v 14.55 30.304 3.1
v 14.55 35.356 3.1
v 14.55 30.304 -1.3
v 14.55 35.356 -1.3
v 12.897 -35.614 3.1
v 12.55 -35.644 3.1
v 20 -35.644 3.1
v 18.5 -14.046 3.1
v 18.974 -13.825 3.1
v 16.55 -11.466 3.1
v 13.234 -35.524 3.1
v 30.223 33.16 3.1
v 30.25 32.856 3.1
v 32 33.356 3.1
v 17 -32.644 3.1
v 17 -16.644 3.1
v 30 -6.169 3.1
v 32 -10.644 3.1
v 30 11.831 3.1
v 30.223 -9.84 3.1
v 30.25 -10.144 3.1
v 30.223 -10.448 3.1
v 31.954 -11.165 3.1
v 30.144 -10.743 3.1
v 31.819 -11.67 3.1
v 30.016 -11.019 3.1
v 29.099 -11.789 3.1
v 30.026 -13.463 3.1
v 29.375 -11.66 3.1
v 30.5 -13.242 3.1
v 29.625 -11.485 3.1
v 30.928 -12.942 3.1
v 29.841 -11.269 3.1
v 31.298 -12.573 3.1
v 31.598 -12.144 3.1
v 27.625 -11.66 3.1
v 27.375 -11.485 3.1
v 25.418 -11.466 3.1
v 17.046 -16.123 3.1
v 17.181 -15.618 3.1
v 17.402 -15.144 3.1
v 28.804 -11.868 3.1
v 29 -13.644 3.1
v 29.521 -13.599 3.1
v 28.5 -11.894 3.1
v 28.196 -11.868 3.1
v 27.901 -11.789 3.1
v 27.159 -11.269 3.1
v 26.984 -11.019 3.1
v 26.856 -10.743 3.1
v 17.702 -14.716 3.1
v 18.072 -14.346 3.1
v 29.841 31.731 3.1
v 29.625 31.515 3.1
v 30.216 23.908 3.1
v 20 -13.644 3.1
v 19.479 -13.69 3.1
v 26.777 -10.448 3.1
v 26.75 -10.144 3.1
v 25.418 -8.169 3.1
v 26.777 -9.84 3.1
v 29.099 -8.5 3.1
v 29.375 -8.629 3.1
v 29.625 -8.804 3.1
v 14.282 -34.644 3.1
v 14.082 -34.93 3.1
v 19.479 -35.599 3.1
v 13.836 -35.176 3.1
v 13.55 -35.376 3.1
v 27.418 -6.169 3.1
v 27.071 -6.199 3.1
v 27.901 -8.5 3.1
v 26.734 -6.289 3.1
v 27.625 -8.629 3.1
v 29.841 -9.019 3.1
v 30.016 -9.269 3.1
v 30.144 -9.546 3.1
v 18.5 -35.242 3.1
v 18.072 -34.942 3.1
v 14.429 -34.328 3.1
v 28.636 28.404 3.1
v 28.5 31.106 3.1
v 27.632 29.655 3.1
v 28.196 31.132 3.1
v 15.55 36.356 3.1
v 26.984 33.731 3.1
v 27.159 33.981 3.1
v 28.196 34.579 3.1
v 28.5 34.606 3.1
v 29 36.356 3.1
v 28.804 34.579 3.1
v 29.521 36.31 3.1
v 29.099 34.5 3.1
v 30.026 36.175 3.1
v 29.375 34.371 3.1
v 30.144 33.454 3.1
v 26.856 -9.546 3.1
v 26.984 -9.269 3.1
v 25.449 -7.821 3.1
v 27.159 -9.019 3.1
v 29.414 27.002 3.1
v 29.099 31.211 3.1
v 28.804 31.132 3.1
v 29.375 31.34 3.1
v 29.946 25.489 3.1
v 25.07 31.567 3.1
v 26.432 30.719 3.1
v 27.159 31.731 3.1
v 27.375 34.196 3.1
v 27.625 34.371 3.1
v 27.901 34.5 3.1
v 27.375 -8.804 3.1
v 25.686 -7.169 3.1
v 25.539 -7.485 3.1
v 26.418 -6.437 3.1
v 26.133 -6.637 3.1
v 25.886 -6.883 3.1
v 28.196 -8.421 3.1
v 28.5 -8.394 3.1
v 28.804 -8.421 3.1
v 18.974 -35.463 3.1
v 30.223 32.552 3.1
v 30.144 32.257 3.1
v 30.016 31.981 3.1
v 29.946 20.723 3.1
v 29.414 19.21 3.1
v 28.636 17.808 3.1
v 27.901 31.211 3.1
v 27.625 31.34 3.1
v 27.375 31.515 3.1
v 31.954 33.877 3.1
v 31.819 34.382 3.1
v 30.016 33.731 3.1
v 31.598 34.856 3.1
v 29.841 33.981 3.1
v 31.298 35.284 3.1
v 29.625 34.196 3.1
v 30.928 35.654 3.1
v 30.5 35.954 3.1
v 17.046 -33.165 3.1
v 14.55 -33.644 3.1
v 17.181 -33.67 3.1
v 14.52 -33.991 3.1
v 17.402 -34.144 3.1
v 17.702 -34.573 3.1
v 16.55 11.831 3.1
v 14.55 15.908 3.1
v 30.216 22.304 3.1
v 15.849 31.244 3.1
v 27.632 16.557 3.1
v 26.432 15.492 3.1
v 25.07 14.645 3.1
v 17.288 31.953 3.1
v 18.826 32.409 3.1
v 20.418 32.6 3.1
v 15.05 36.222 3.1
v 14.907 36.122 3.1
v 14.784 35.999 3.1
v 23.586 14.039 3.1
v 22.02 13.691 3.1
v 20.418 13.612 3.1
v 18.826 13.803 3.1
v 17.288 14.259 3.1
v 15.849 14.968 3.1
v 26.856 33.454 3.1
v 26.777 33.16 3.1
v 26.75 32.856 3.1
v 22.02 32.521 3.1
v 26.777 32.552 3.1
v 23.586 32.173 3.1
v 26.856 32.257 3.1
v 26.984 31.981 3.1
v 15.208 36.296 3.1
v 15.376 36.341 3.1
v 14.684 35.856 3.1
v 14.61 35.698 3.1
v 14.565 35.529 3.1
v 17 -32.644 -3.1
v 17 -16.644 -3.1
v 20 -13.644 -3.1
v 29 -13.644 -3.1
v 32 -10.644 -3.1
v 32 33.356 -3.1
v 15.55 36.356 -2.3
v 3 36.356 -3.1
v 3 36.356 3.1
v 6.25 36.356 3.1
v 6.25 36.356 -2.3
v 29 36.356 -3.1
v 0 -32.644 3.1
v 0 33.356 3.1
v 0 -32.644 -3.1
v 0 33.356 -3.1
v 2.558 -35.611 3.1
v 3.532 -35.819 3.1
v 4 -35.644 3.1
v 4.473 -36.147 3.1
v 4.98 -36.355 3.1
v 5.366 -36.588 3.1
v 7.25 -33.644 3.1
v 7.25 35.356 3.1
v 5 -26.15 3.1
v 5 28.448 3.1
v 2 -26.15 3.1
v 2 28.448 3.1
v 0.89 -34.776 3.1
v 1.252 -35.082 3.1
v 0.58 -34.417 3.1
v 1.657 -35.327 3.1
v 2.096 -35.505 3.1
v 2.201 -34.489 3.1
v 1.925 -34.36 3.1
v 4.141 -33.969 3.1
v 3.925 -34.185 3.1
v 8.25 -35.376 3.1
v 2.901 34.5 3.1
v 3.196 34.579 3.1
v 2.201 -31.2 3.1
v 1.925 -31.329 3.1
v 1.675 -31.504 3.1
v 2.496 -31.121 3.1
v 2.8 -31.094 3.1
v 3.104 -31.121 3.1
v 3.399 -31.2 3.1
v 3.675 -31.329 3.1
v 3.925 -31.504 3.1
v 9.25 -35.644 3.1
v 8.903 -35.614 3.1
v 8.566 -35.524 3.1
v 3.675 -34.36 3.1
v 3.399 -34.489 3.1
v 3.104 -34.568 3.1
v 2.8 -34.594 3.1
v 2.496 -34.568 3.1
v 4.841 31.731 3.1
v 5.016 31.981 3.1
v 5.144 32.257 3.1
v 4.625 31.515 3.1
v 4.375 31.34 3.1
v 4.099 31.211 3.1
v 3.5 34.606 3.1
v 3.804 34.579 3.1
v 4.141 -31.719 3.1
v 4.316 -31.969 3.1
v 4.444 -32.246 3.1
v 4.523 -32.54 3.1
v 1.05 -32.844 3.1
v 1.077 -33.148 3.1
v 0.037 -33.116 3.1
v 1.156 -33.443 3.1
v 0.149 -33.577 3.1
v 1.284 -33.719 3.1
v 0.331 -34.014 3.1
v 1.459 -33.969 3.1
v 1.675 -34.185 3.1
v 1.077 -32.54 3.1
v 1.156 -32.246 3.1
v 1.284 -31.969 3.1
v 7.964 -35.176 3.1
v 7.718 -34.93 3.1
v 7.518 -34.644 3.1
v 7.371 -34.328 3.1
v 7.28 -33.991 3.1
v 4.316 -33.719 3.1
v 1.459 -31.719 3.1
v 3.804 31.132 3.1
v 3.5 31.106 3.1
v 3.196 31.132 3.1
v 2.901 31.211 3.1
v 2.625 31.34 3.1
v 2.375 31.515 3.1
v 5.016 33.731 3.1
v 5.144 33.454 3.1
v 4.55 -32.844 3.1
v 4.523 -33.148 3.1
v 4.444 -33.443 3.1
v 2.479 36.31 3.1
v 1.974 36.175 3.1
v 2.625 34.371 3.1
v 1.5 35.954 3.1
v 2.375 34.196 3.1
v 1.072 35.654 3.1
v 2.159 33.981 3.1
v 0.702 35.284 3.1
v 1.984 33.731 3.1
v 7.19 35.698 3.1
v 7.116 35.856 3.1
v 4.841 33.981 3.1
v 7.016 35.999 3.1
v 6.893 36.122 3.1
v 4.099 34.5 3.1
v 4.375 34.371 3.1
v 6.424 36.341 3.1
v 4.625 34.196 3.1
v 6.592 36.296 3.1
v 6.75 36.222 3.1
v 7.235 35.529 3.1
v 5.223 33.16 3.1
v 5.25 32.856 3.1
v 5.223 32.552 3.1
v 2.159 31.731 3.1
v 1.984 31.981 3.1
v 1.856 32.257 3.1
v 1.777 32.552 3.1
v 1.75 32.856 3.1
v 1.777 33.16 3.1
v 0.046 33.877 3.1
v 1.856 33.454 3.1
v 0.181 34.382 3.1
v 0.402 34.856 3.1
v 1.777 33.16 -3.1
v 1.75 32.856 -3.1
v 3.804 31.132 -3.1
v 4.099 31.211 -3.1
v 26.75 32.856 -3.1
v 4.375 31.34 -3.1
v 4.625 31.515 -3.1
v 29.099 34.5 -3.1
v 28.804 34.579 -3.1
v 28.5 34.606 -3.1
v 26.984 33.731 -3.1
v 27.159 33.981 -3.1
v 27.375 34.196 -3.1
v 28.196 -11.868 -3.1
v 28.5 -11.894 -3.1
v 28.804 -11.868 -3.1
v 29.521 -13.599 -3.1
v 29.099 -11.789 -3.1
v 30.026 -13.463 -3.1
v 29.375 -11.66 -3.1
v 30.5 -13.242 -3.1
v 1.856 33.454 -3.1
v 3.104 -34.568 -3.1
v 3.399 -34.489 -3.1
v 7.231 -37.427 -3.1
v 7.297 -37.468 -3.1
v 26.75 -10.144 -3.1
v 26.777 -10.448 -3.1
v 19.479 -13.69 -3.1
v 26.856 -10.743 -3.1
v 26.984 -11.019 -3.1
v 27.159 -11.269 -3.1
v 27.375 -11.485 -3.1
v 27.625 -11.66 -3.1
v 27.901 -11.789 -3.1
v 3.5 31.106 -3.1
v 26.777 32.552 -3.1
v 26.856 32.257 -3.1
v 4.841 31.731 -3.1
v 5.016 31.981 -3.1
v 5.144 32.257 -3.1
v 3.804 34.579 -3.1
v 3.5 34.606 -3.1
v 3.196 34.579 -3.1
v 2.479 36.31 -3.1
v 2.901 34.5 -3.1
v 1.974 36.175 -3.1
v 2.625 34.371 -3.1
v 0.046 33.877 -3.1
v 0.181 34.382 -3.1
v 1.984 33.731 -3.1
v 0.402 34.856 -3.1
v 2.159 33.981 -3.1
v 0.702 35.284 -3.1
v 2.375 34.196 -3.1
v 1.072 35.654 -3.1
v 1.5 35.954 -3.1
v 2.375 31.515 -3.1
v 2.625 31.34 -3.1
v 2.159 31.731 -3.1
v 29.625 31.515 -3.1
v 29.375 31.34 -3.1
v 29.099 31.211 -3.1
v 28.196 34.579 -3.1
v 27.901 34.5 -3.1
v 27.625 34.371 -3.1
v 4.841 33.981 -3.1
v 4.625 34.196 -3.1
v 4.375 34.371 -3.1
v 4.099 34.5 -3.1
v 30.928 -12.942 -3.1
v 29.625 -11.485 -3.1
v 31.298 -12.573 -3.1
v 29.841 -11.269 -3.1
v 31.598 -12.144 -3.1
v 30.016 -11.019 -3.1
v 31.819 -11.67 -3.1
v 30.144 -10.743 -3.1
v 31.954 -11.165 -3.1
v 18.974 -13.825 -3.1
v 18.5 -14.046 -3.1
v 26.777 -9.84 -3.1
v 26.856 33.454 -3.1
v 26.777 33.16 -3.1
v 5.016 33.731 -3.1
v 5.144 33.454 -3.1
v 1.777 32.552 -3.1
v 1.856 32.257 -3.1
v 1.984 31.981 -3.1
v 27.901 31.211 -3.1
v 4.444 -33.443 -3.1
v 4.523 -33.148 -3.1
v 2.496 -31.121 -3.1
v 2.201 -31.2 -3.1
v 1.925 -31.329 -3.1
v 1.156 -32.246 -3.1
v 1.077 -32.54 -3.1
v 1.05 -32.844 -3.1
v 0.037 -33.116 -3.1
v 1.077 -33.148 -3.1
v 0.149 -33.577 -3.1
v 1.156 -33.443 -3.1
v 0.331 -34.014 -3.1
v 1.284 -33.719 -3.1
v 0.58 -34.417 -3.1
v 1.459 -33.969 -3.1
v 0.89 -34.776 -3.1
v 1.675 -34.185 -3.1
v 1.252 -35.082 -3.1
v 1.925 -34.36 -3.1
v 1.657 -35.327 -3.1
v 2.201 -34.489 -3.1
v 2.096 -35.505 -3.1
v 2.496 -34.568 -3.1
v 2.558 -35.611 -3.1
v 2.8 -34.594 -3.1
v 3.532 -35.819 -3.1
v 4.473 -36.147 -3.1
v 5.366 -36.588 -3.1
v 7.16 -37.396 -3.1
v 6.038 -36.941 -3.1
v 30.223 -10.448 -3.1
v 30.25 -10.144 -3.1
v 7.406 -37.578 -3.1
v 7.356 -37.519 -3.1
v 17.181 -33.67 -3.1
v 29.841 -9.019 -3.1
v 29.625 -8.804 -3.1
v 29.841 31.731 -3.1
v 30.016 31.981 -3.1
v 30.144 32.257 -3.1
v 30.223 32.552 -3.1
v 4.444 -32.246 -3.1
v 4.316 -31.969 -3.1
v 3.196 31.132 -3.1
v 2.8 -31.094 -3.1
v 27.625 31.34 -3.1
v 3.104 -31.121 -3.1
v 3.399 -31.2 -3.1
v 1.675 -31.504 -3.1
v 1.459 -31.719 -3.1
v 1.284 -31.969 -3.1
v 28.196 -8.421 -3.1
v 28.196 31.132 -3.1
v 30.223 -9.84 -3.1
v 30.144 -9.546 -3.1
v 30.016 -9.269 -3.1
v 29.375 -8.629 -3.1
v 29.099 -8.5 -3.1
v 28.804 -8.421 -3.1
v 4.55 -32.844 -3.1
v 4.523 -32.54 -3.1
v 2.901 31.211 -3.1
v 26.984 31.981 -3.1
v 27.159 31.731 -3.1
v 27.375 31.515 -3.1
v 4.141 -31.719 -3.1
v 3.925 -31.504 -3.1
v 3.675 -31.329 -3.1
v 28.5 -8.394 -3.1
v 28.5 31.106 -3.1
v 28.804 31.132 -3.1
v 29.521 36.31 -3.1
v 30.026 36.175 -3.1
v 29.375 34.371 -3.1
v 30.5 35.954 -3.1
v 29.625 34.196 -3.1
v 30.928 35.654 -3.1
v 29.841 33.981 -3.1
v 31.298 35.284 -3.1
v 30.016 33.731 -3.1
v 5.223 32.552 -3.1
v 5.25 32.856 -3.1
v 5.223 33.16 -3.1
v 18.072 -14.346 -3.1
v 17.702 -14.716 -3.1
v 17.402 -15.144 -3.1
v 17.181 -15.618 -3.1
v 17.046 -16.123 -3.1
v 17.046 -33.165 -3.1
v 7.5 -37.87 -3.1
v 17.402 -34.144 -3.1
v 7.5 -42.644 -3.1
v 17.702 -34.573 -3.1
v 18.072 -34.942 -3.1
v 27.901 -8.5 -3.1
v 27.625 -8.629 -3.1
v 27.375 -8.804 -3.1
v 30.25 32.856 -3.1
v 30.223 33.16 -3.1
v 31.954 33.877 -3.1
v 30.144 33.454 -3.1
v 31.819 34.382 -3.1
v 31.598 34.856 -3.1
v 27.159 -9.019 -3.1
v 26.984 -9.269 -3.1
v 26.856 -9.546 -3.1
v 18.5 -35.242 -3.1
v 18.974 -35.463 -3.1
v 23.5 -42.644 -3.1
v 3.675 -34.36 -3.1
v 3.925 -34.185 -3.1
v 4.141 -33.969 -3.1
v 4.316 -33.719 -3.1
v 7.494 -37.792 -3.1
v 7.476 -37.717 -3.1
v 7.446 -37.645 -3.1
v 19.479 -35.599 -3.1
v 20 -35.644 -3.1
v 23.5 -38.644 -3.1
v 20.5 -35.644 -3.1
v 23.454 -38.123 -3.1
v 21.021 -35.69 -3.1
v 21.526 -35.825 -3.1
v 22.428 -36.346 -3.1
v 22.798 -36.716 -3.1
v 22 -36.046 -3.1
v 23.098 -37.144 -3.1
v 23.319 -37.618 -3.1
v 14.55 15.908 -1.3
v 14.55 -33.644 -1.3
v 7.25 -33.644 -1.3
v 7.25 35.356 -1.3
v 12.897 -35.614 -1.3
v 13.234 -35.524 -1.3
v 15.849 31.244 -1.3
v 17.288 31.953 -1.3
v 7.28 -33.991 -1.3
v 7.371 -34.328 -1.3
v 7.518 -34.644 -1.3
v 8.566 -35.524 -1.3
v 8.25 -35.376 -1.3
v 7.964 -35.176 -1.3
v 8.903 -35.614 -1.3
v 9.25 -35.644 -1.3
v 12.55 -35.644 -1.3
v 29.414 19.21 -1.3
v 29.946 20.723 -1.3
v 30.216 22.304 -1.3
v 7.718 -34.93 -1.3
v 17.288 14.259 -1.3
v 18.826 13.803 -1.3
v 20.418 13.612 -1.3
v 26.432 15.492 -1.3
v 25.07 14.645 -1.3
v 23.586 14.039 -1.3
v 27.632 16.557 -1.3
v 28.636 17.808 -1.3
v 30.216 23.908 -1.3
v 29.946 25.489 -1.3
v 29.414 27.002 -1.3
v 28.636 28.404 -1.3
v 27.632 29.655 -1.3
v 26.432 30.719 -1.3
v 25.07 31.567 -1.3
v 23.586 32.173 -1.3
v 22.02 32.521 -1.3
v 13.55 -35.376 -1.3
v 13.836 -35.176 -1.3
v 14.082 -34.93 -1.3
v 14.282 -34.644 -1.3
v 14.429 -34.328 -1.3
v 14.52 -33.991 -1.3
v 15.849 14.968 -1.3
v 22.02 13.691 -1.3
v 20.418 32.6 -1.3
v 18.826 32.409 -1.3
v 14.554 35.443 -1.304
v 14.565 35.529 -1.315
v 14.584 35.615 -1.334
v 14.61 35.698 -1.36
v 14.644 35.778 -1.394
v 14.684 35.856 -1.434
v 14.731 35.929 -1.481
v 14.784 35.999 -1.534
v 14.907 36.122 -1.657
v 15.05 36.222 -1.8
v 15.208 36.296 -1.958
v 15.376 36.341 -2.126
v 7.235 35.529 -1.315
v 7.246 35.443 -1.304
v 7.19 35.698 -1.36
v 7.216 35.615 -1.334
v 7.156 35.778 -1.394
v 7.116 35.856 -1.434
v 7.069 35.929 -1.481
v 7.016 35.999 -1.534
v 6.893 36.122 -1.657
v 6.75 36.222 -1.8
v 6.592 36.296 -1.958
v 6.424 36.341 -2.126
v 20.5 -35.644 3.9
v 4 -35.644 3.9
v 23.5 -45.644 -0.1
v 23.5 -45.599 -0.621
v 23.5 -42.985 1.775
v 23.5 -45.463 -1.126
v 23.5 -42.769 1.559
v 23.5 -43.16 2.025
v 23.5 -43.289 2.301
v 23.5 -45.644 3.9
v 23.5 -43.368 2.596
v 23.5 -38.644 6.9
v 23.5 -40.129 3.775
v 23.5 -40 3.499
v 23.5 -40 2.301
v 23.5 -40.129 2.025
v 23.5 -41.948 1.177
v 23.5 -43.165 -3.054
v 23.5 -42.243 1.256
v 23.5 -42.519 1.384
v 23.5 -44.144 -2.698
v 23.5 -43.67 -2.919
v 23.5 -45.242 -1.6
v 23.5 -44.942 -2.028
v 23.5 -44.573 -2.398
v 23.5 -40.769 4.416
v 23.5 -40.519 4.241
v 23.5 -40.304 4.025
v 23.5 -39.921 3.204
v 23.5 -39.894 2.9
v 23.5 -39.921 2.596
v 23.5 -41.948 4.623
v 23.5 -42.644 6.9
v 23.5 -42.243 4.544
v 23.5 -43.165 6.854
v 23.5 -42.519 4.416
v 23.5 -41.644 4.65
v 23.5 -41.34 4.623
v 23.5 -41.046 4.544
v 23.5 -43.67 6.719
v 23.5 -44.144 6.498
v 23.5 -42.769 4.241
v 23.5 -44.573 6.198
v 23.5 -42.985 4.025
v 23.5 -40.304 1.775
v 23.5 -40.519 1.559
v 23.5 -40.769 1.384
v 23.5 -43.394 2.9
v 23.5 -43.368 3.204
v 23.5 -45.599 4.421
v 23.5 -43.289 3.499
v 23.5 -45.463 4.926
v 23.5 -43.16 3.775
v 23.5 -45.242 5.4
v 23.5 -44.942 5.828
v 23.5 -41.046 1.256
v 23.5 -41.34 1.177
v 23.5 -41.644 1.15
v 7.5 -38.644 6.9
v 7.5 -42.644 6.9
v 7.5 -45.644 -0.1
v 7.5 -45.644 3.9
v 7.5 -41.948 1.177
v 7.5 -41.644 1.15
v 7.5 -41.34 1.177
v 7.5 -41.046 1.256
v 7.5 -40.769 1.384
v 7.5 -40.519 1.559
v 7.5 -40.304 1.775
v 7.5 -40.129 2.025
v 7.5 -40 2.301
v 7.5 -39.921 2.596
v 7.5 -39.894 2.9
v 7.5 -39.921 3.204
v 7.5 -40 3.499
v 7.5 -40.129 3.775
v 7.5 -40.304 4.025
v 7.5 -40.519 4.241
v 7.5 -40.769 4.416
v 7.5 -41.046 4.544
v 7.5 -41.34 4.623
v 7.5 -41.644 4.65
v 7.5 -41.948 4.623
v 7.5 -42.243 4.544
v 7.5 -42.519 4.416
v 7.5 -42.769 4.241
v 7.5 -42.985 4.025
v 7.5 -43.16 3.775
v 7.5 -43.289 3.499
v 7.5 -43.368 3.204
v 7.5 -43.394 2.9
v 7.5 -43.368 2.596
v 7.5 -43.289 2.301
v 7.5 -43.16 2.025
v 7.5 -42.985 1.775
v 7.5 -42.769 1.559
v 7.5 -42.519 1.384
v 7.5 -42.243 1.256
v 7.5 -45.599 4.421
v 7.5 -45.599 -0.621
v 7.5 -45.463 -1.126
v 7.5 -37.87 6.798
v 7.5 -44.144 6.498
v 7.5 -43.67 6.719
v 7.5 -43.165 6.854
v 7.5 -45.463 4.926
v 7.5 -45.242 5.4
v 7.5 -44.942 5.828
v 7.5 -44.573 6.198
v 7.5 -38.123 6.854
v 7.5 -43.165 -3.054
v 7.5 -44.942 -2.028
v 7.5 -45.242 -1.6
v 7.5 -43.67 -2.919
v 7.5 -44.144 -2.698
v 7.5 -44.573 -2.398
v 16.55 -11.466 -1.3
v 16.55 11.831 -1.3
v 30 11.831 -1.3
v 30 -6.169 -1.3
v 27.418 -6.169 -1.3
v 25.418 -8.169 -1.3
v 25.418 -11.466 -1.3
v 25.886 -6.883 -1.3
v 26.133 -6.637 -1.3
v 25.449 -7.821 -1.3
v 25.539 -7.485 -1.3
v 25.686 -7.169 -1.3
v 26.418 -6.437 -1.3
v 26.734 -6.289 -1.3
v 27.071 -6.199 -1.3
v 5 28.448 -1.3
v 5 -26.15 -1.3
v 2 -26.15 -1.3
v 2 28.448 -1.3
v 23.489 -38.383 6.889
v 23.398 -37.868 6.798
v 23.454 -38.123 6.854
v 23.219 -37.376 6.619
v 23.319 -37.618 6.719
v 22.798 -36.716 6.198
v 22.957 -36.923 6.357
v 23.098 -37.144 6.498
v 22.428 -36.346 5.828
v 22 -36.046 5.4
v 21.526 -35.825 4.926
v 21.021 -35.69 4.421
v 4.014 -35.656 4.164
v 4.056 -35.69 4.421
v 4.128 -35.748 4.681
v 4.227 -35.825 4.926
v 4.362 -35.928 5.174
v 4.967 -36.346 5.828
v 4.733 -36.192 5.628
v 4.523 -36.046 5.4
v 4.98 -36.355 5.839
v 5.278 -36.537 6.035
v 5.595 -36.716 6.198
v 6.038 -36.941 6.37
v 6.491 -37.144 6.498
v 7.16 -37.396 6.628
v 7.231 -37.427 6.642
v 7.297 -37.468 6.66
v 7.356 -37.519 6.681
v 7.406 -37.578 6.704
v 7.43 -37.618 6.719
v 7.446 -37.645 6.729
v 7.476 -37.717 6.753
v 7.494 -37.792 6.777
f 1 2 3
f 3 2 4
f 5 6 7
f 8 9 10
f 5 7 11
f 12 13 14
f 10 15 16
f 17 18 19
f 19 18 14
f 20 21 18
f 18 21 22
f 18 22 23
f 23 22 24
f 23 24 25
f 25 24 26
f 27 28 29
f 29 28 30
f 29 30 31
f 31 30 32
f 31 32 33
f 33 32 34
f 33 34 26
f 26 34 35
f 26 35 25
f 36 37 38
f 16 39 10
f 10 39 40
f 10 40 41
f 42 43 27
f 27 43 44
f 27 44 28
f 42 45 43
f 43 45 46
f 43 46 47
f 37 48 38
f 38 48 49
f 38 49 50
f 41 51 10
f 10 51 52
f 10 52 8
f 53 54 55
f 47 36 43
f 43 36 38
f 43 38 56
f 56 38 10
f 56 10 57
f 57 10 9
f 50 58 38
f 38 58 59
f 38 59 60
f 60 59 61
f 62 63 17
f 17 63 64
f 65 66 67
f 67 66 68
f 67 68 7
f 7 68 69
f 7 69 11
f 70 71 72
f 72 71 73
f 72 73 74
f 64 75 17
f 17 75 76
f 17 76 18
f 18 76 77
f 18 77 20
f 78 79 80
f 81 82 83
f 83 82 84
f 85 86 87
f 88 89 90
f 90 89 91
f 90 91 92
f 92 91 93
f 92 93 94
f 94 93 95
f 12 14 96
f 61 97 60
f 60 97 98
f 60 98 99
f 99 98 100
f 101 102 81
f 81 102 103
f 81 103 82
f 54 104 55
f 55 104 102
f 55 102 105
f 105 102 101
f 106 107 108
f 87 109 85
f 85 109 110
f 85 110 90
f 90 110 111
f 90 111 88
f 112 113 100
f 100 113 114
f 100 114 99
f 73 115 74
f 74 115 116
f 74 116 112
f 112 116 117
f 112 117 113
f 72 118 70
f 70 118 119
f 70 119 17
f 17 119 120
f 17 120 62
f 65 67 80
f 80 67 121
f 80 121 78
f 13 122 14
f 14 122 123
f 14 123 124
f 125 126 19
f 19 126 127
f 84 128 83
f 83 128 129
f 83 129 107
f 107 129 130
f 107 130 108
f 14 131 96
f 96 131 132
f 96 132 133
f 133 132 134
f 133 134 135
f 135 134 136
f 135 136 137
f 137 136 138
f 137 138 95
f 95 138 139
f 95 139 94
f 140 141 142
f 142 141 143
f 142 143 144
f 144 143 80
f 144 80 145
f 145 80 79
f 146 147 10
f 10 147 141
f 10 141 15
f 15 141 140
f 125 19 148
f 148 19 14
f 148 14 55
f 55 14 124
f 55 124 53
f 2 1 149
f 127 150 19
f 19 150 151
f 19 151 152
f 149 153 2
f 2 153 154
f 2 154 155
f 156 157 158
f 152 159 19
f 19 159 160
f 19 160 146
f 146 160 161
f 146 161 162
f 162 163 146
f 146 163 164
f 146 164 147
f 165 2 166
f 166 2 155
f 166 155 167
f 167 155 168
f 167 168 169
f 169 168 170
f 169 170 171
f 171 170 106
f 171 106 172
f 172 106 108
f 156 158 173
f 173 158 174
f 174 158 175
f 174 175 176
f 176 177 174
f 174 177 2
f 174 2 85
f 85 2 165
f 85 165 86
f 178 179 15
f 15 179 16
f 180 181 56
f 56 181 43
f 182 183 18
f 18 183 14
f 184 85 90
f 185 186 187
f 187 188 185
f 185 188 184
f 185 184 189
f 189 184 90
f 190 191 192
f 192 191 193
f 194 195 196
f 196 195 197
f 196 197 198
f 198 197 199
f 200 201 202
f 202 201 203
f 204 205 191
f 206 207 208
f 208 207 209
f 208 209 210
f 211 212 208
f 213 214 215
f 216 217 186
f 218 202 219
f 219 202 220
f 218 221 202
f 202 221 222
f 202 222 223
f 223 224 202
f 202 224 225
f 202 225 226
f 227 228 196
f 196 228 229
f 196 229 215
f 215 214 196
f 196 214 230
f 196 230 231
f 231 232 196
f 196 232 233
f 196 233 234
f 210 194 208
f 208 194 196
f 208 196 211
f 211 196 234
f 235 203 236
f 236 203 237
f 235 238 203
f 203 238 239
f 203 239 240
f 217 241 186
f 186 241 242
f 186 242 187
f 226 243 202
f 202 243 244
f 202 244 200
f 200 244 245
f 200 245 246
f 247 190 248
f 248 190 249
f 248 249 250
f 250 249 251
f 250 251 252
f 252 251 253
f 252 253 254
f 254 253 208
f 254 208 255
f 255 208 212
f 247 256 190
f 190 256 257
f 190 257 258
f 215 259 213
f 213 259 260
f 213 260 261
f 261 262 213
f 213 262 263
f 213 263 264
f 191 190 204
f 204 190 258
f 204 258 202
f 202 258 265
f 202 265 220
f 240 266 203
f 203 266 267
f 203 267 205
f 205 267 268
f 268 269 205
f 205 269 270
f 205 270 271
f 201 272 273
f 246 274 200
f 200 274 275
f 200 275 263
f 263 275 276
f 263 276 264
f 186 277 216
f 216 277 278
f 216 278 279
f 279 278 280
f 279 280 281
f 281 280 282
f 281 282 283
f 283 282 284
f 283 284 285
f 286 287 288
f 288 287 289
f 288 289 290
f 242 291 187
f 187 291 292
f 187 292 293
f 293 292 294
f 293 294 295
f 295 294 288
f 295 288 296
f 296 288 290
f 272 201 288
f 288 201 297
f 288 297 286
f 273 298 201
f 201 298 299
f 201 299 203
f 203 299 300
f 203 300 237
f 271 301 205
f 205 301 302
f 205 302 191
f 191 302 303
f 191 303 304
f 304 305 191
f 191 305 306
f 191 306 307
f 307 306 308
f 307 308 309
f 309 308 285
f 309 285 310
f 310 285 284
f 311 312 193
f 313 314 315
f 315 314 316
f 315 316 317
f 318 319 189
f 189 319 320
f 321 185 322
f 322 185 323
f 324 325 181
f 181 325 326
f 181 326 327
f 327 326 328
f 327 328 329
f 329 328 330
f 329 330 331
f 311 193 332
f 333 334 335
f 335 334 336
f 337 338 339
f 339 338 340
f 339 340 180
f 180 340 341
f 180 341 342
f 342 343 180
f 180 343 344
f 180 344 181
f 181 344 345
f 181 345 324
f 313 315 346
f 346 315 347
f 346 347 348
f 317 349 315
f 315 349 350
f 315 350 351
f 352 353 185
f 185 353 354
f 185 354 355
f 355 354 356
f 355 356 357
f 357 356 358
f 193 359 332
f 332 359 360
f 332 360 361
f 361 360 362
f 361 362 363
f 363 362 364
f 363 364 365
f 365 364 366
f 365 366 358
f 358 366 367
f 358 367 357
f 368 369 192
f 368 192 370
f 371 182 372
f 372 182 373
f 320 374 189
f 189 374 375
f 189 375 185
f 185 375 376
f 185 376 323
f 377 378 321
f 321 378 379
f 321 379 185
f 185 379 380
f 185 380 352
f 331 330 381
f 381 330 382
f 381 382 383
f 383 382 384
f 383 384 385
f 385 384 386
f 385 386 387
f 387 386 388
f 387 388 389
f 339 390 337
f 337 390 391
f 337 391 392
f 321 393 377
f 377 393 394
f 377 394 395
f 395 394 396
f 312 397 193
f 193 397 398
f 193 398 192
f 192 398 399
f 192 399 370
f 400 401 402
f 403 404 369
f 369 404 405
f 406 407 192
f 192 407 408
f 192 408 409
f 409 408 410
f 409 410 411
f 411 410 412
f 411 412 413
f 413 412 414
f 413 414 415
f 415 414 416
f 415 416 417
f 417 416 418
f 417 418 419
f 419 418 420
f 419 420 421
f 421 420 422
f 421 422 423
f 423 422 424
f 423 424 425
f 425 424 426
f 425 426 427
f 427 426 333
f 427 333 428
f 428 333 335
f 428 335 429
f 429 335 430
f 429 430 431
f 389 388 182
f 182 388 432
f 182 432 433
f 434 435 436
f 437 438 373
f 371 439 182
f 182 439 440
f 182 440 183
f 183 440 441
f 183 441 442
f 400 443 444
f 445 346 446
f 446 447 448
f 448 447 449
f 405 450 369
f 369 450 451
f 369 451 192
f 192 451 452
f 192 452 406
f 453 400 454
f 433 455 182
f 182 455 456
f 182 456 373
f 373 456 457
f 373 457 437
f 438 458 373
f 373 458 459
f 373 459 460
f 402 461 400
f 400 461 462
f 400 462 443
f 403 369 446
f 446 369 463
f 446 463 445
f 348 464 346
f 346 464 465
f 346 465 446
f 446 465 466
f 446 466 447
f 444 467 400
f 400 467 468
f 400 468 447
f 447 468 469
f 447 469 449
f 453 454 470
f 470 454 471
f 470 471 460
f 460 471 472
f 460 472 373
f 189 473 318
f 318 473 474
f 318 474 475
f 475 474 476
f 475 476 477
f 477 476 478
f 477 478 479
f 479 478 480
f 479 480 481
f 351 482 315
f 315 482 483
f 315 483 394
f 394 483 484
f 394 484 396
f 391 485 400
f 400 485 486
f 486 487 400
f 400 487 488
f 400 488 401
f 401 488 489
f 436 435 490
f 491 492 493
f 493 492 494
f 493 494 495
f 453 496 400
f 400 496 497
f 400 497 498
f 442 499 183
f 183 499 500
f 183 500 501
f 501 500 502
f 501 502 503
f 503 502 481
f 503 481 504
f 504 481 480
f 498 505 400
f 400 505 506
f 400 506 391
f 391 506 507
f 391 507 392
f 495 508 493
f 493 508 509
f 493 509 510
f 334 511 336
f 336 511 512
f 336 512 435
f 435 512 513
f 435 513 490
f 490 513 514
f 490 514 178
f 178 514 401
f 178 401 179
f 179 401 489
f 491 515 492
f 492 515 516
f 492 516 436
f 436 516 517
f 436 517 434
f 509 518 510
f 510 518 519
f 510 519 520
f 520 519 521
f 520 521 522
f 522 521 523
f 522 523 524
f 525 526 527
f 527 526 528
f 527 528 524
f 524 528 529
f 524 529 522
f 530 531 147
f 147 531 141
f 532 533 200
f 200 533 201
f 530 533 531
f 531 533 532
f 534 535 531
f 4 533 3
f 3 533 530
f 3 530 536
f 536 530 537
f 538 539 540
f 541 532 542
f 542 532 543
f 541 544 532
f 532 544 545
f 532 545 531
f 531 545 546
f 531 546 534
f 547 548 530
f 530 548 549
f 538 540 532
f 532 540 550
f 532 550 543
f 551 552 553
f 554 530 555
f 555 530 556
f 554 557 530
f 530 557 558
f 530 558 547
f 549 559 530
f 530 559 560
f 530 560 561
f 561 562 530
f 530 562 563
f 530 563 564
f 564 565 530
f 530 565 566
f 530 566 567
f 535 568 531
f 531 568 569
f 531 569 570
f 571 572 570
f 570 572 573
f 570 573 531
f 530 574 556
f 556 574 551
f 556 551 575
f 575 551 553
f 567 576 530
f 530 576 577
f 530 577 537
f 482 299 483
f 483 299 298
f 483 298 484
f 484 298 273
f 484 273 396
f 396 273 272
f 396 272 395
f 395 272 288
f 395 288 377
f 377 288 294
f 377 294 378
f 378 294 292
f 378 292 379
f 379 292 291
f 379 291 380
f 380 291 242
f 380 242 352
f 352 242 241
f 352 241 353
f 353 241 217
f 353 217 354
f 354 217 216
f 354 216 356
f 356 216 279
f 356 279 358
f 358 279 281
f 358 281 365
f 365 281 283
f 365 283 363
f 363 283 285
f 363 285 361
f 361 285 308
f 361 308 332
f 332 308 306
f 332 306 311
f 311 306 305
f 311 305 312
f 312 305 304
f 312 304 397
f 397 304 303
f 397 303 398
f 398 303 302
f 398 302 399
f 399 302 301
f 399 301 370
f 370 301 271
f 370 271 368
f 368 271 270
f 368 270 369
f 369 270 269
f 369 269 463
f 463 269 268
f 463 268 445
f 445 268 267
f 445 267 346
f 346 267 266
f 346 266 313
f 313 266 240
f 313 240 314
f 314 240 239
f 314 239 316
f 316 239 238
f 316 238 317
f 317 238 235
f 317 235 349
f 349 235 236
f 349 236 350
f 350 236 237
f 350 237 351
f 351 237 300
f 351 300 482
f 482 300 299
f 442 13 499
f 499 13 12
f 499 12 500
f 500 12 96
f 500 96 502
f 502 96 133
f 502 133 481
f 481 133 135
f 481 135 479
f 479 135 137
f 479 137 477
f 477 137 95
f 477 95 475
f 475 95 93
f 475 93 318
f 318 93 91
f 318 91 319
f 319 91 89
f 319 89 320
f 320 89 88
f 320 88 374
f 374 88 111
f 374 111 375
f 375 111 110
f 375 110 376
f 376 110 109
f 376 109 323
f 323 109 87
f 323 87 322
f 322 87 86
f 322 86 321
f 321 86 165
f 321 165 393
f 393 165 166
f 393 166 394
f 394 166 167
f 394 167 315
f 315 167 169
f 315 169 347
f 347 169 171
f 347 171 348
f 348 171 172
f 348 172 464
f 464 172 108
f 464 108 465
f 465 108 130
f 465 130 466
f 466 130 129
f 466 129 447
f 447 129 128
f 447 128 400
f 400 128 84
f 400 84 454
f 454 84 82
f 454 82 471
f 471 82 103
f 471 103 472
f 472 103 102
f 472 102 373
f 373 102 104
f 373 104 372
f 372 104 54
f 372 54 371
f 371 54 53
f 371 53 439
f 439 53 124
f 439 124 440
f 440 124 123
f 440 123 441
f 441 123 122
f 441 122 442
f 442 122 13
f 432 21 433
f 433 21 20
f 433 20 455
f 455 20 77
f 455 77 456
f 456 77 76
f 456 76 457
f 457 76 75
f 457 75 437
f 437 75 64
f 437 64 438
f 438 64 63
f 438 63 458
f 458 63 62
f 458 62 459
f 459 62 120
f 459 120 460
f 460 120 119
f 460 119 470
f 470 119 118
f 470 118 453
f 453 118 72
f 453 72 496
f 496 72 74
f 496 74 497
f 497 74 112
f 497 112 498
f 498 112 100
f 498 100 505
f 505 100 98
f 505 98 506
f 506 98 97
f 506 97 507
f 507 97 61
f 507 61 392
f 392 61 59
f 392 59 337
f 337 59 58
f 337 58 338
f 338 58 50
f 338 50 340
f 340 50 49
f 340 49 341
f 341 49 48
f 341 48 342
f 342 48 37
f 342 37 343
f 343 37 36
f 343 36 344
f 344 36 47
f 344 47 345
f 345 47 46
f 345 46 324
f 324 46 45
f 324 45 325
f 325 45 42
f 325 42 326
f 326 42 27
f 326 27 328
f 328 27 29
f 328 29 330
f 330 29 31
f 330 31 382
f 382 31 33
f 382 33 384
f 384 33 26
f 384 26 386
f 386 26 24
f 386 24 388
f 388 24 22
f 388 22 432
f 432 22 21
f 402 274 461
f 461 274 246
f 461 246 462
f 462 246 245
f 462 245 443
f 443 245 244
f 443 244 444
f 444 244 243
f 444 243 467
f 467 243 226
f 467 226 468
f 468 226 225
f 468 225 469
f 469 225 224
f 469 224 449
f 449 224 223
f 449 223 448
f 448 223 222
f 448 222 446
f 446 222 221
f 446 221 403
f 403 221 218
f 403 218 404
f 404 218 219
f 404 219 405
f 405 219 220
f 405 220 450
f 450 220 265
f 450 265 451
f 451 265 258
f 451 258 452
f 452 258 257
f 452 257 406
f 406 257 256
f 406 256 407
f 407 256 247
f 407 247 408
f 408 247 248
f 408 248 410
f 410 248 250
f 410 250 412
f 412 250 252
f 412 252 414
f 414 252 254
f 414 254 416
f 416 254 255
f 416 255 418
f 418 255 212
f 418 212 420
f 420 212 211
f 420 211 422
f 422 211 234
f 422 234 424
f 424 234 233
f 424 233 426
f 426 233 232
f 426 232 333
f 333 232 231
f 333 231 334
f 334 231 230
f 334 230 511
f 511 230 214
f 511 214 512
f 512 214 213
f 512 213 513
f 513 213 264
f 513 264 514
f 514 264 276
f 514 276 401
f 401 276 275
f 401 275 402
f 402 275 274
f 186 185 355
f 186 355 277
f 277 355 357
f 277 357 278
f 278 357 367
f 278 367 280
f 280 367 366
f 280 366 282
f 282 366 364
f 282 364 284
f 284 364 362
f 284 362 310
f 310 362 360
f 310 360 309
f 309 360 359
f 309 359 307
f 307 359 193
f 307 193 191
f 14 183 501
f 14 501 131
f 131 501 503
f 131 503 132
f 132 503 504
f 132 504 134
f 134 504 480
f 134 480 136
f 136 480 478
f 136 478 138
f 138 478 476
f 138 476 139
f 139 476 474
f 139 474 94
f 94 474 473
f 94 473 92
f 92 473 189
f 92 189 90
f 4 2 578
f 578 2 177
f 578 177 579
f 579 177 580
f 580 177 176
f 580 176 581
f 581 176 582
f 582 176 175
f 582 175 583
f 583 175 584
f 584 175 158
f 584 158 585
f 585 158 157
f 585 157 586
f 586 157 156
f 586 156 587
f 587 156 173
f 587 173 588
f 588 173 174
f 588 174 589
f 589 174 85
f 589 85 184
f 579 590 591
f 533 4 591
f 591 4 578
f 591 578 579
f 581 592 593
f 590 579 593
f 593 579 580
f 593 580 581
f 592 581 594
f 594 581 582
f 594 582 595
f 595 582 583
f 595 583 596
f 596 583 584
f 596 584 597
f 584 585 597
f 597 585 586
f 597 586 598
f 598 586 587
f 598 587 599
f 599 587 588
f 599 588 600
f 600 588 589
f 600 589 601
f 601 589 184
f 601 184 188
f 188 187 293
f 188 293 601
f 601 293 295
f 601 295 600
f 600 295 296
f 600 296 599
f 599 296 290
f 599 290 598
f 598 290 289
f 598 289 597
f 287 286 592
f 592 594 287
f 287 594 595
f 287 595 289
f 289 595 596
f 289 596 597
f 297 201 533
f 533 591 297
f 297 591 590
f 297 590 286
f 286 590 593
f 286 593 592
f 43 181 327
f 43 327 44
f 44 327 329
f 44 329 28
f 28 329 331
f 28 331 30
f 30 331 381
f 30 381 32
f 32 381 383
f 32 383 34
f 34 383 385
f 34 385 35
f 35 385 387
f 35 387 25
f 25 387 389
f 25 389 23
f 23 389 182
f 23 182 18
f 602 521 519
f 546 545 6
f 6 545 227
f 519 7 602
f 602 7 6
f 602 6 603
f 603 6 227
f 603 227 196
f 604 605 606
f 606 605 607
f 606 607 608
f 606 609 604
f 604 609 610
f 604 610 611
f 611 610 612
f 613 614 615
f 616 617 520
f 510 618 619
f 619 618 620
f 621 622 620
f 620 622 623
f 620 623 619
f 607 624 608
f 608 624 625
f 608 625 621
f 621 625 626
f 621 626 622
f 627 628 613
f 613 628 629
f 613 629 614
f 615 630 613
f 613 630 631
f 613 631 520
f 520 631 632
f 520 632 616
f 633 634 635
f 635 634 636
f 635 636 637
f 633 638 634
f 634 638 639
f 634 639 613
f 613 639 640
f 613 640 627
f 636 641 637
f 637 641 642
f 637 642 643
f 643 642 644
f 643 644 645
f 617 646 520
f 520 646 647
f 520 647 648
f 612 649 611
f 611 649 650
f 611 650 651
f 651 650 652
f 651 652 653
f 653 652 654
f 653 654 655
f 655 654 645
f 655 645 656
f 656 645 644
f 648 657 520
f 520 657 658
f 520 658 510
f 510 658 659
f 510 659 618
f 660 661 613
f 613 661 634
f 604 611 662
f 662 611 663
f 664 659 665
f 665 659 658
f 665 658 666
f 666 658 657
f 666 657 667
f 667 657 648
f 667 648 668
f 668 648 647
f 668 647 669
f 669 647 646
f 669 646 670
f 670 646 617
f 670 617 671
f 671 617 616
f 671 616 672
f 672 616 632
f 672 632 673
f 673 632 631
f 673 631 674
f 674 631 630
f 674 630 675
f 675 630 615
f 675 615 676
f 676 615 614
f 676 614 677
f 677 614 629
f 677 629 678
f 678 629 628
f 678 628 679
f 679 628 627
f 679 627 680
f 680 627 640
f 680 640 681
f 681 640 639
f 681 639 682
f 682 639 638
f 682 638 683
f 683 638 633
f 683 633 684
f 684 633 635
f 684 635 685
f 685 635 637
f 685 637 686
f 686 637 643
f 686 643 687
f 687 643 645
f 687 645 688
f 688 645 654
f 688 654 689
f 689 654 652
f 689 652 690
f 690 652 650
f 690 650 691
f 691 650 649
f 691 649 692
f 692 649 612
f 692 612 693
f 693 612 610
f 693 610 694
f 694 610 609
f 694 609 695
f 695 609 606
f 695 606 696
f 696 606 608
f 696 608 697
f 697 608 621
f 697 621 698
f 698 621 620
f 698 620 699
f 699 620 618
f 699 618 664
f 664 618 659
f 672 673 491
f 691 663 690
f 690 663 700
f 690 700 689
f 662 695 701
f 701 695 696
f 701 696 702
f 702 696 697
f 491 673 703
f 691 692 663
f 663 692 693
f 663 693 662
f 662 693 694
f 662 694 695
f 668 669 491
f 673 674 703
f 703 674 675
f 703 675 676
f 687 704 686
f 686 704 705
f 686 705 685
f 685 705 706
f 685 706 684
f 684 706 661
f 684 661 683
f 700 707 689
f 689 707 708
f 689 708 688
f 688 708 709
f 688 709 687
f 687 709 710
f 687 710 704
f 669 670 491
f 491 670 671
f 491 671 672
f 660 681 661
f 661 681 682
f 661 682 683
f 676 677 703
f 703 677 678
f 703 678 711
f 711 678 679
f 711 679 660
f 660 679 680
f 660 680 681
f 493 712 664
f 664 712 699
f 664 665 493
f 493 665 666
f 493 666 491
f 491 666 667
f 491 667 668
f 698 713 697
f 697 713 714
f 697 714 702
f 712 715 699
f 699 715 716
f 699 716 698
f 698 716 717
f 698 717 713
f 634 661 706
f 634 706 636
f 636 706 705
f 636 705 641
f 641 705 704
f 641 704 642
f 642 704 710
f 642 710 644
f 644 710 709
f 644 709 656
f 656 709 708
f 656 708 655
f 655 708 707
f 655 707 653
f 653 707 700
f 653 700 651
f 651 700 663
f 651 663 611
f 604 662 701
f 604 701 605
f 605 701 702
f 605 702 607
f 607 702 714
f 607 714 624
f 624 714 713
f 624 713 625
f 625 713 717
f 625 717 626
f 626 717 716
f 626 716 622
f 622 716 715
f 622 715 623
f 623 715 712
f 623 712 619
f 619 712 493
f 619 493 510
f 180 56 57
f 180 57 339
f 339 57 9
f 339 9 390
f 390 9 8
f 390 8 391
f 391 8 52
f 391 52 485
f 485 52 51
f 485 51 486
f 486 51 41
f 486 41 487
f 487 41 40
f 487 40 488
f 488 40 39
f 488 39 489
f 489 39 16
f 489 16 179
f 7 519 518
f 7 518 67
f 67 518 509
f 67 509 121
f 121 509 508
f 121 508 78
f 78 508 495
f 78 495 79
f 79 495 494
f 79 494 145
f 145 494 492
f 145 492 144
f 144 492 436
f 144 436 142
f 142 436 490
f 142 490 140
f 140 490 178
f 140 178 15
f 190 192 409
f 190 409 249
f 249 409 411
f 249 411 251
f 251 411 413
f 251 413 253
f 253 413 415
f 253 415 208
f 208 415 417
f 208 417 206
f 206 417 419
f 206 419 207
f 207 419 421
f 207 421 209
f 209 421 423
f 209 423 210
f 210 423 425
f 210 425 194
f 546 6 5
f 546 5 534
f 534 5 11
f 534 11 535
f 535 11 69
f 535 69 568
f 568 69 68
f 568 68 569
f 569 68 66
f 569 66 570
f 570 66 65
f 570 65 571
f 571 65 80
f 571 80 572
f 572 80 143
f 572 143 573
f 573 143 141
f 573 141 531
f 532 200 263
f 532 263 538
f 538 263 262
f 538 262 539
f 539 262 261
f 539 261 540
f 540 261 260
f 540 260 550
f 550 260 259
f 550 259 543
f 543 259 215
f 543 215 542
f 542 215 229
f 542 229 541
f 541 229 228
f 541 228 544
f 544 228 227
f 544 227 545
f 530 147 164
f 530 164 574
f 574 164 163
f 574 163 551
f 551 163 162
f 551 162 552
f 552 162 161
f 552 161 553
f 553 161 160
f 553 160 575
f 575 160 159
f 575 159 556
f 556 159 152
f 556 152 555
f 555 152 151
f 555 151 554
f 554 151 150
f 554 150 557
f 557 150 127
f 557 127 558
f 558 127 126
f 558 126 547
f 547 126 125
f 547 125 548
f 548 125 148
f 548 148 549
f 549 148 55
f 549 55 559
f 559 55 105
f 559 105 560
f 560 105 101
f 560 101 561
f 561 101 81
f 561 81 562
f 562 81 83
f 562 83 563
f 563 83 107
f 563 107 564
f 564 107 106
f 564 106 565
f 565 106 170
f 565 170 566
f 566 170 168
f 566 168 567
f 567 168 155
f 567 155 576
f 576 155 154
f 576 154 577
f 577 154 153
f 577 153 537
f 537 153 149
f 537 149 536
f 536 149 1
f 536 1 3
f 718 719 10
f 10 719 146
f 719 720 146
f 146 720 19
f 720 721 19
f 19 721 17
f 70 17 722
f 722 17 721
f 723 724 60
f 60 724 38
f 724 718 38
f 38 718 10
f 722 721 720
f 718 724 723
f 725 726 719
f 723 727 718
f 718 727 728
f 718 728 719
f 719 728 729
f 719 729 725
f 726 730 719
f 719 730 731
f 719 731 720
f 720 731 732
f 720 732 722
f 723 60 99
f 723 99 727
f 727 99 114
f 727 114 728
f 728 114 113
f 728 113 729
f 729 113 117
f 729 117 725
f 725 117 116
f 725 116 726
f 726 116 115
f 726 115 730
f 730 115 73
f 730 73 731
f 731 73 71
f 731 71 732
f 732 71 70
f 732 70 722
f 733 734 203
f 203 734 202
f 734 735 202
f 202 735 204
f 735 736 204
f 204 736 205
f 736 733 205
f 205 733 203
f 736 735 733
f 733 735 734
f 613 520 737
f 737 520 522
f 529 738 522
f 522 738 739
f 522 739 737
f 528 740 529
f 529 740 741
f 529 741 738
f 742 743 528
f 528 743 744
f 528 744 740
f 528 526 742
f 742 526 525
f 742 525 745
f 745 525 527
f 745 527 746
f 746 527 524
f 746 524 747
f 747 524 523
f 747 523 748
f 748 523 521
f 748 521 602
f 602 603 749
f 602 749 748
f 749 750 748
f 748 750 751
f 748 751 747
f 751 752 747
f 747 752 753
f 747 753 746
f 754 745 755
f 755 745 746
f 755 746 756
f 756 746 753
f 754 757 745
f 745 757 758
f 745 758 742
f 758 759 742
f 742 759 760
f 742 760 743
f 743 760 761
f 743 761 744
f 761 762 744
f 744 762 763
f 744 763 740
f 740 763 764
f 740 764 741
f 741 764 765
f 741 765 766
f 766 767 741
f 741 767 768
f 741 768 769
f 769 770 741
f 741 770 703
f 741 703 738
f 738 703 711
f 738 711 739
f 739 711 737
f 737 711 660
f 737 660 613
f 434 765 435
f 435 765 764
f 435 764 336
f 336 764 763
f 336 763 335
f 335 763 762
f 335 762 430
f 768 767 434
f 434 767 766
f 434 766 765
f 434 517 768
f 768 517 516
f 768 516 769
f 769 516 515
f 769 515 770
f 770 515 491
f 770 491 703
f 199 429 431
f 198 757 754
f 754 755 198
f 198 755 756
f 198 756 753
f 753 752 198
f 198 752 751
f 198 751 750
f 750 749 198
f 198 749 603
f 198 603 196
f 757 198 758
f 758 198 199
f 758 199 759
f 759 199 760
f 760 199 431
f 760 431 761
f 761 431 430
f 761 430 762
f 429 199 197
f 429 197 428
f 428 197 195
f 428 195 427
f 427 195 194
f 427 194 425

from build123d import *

# Parameters (mm, degrees)
BODY_DEPTH                      = 3.1
CHANNEL_W                       = 7.3
CHANNEL_H                       = 72
PIGIONCHANNEL_DEPTH             = 4.4
SKIZZE2_R                       = 1.75
SCREWS_DEPTH                    = 49.828144706
VERRUNDUNG1_R                   = 3
VERRUNDUNG2_R                   = 1
VERRUNDUNG3_R                   = 3
SKIZZE6_W                       = 19.5
SKIZZE6_H                       = 10
HANDLE_DEPTH                    = 10
SKIZZE7_R                       = 1.75
SCHNITT_LINEAR_AUSTRAGEN3_DEPTH = 52.800082742
SKIZZE8_W                       = 10
SKIZZE8_H                       = 8.274086909
SCHNITT_LINEAR_AUSTRAGEN4_DEPTH = 3.5
VERRUNDUNG7_R                   = 3
VERRUNDUNG8_R                   = 3
VERRUNDUNG12_R                  = 3
VERRUNDUNG13_R                  = 3
VERRUNDUNG14_R                  = 3
VERRUNDUNG16_R                  = 2
SKIZZE9_R                       = 9.5
GEAR_CAGE_DEPTH                 = 4.4
SCHNITT_LINEAR_AUSTRAGEN6_DEPTH = 4.4
VERRUNDUNG17_R                  = 2
SKIZZE11_W                      = 3
SKIZZE11_H                      = 54.597729832
SCHNITT_LINEAR_AUSTRAGEN7_DEPTH = 4.4
VERRUNDUNG18_R                  = 3
VERRUNDUNG19_R                  = 0.5
VERRUNDUNG20_START              = -4
VERRUNDUNG20_DEPTH              = 10.628110602
VERRUNDUNG22_START              = -3.1
VERRUNDUNG22_DEPTH              = 6.2


with BuildPart() as part:
    # body_sketch → body (new, symmetric)
    with BuildSketch(Plane.XY):
        Polygon((0, -35.644151565), (0, 36.355848435), (32, 36.355848435), (32, -13.644151565), (17, -13.644151565), (17, -35.644151565), align=None)
    extrude(amount=BODY_DEPTH, both=True)

    # channel → pigionchannel (cut)
    with BuildSketch(Plane.XY.offset(3.1)):
        with Locations((10.9, 0.355848435)):
            Rectangle(CHANNEL_W, CHANNEL_H)
    extrude(amount=-PIGIONCHANNEL_DEPTH, mode=Mode.SUBTRACT)

    # Skizze2 → screws (cut, through all)
    with BuildSketch(Plane.XY.offset(3.1)):
        with Locations((3.5, 32.855848435)):
            Circle(SKIZZE2_R)
        with Locations((28.5, 32.855848435)):
            Circle(SKIZZE2_R)
        with Locations((28.5, -10.144151565)):
            Circle(SKIZZE2_R)
        with Locations((2.8, -32.844151565)):
            Circle(SKIZZE2_R)
    extrude(amount=-SCREWS_DEPTH, mode=Mode.SUBTRACT)

    # Verrundung1
    verrundung1_edges = [part.edges().sort_by_distance(p)[0] for p in [
        (0, 36.355848435, 0),
        (32, 36.355848435, 0),
    ]]
    fillet(verrundung1_edges, radius=VERRUNDUNG1_R)

    # Verrundung2
    verrundung2_edges = [part.edges().sort_by_distance(p)[0] for p in [
        (14.55, 36.355848435, 0.9),
        (10.9, 36.355848435, -1.3),
        (7.25, 36.355848435, 0.9),
    ]]
    fillet(verrundung2_edges, radius=VERRUNDUNG2_R)

    # Verrundung3
    verrundung3_edges = [part.edges().sort_by_distance(p)[0] for p in [
        (32, -13.644151565, 0),
    ]]
    fillet(verrundung3_edges, radius=VERRUNDUNG3_R)

    # Skizze6 → handle (add)
    with BuildSketch(Plane.XZ.offset(35.644151565)):
        with Locations((13.75, 1.9)):
            Rectangle(SKIZZE6_W, SKIZZE6_H)
    extrude(amount=HANDLE_DEPTH)

    # Skizze7 → Schnitt-Linear austragen3 (cut, through all)
    with BuildSketch(Plane(origin=(23.5, 0, 0), x_dir=(0, 0, -1), z_dir=(1, 0, 0))):
        with Locations((-2.9, -41.644151565)):
            Circle(SKIZZE7_R)
    extrude(amount=-SCHNITT_LINEAR_AUSTRAGEN3_DEPTH, mode=Mode.SUBTRACT)

    # Skizze8 → Schnitt-Linear austragen4 (cut)
    with BuildSketch(Plane.ZY.offset(-4)):
        with Locations((1.9, -41.50710811)):
            Rectangle(SKIZZE8_W, SKIZZE8_H)
    extrude(amount=-SCHNITT_LINEAR_AUSTRAGEN4_DEPTH, mode=Mode.SUBTRACT)

    # Verrundung7
    verrundung7_edges = [part.edges().sort_by_distance(p)[0] for p in [
        (15.5, -45.644151565, 6.9),
    ]]
    fillet(verrundung7_edges, radius=VERRUNDUNG7_R)

    # Verrundung8
    verrundung8_edges = [part.edges().sort_by_distance(p)[0] for p in [
        (15.5, -45.644151565, -3.1),
    ]]
    fillet(verrundung8_edges, radius=VERRUNDUNG8_R)

    # Verrundung12
    verrundung12_edges = [part.edges().sort_by_distance(p)[0] for p in [
        (17, -13.644151565, 0),
    ]]
    fillet(verrundung12_edges, radius=VERRUNDUNG12_R)

    # Verrundung13
    verrundung13_edges = [part.edges().sort_by_distance(p)[0] for p in [
        (17, -35.644151565, 0),
    ]]
    fillet(verrundung13_edges, radius=VERRUNDUNG13_R)

    # Verrundung14
    verrundung14_edges = [part.edges().sort_by_distance(p)[0] for p in [
        (0, -35.644151565, 0),
    ]]
    fillet(verrundung14_edges, radius=VERRUNDUNG14_R)

    # Verrundung16
    verrundung16_edges = [part.edges().sort_by_distance(p)[0] for p in [
        (14.55, -35.644151565, 0.9),
        (7.25, -35.644151565, 0.9),
    ]]
    fillet(verrundung16_edges, radius=VERRUNDUNG16_R)

    # Skizze9 → gear cage (cut)
    with BuildSketch(Plane.XY.offset(3.1)):
        with Locations((20.75, 23.105848435)):
            Circle(SKIZZE9_R)
    extrude(amount=-GEAR_CAGE_DEPTH, mode=Mode.SUBTRACT)

    # Skizze10 → Schnitt-Linear austragen6 (cut)
    with BuildSketch(Plane.XY.offset(3.1)):
        Polygon((16.55, 11.83128846), (30, 11.83128846), (30, -6.16871154), (25.418135465, -6.16871154), (25.418135465, -11.465988975), (16.55, -11.465988975), align=None)
    extrude(amount=-SCHNITT_LINEAR_AUSTRAGEN6_DEPTH, mode=Mode.SUBTRACT)

    # Verrundung17
    verrundung17_edges = [part.edges().sort_by_distance(p)[0] for p in [
        (25.418135465, -6.16871154, 0.9),
    ]]
    fillet(verrundung17_edges, radius=VERRUNDUNG17_R)

    # Skizze11 → Schnitt-Linear austragen7 (cut)
    with BuildSketch(Plane.XY.offset(3.1)):
        with Locations((3.5, 1.149247054)):
            Rectangle(SKIZZE11_W, SKIZZE11_H)
    extrude(amount=-SCHNITT_LINEAR_AUSTRAGEN7_DEPTH, mode=Mode.SUBTRACT)

    # Verrundung18
    verrundung18_edges = [part.edges().sort_by_distance(p)[0] for p in [
        (13.75, -35.644151565, 6.9),
        (23.5, -35.644151565, 1.9),
    ]]
    fillet(verrundung18_edges, radius=VERRUNDUNG18_R)

    # Verrundung19
    verrundung19_edges = [part.edges().sort_by_distance(p)[0] for p in [
        (7.5, -37.370064656, 1.758004285),
    ]]
    fillet(verrundung19_edges, radius=VERRUNDUNG19_R)

    # Verrundung20: read off the stored shape, not the designer's step
    # Verrundung20 outline → Verrundung20 (cut)
    with BuildSketch(Plane.XY.offset(VERRUNDUNG20_START)):
        with BuildLine():
            ThreePointArc((7, -37.370064656), (7.080813571, -37.376638707), (7.159502052, -37.396187989))
            ThreePointArc((7.159502052, -37.396187989), (5.499970333, -36.664033092), (3.999994229, -35.644146822))
            Line((3.999994229, -35.644146822), (4, -37.370064656))
            Line((4, -37.370064656), (7, -37.370064656))
        make_face()
    extrude(amount=VERRUNDUNG20_DEPTH, mode=Mode.SUBTRACT)

    # Verrundung22: read off the stored shape, not the designer's step
    # Verrundung22 outline → Verrundung22 (add)
    with BuildSketch(Plane.XY.offset(VERRUNDUNG22_START)):
        with BuildLine():
            ThreePointArc((2.557893696, -35.611396418), (4.007665984, -35.968268897), (5.36587668, -36.588318377))
            ThreePointArc((5.36587668, -36.588318377), (4.663304696, -36.144631367), (3.999994229, -35.644146822))
            Line((3.999994229, -35.644146822), (3, -35.644151565))
            ThreePointArc((3, -35.644151565), (2.778340981, -35.635951572), (2.557893696, -35.611396418))
        make_face()
    extrude(amount=VERRUNDUNG22_DEPTH)


solid = part.part
